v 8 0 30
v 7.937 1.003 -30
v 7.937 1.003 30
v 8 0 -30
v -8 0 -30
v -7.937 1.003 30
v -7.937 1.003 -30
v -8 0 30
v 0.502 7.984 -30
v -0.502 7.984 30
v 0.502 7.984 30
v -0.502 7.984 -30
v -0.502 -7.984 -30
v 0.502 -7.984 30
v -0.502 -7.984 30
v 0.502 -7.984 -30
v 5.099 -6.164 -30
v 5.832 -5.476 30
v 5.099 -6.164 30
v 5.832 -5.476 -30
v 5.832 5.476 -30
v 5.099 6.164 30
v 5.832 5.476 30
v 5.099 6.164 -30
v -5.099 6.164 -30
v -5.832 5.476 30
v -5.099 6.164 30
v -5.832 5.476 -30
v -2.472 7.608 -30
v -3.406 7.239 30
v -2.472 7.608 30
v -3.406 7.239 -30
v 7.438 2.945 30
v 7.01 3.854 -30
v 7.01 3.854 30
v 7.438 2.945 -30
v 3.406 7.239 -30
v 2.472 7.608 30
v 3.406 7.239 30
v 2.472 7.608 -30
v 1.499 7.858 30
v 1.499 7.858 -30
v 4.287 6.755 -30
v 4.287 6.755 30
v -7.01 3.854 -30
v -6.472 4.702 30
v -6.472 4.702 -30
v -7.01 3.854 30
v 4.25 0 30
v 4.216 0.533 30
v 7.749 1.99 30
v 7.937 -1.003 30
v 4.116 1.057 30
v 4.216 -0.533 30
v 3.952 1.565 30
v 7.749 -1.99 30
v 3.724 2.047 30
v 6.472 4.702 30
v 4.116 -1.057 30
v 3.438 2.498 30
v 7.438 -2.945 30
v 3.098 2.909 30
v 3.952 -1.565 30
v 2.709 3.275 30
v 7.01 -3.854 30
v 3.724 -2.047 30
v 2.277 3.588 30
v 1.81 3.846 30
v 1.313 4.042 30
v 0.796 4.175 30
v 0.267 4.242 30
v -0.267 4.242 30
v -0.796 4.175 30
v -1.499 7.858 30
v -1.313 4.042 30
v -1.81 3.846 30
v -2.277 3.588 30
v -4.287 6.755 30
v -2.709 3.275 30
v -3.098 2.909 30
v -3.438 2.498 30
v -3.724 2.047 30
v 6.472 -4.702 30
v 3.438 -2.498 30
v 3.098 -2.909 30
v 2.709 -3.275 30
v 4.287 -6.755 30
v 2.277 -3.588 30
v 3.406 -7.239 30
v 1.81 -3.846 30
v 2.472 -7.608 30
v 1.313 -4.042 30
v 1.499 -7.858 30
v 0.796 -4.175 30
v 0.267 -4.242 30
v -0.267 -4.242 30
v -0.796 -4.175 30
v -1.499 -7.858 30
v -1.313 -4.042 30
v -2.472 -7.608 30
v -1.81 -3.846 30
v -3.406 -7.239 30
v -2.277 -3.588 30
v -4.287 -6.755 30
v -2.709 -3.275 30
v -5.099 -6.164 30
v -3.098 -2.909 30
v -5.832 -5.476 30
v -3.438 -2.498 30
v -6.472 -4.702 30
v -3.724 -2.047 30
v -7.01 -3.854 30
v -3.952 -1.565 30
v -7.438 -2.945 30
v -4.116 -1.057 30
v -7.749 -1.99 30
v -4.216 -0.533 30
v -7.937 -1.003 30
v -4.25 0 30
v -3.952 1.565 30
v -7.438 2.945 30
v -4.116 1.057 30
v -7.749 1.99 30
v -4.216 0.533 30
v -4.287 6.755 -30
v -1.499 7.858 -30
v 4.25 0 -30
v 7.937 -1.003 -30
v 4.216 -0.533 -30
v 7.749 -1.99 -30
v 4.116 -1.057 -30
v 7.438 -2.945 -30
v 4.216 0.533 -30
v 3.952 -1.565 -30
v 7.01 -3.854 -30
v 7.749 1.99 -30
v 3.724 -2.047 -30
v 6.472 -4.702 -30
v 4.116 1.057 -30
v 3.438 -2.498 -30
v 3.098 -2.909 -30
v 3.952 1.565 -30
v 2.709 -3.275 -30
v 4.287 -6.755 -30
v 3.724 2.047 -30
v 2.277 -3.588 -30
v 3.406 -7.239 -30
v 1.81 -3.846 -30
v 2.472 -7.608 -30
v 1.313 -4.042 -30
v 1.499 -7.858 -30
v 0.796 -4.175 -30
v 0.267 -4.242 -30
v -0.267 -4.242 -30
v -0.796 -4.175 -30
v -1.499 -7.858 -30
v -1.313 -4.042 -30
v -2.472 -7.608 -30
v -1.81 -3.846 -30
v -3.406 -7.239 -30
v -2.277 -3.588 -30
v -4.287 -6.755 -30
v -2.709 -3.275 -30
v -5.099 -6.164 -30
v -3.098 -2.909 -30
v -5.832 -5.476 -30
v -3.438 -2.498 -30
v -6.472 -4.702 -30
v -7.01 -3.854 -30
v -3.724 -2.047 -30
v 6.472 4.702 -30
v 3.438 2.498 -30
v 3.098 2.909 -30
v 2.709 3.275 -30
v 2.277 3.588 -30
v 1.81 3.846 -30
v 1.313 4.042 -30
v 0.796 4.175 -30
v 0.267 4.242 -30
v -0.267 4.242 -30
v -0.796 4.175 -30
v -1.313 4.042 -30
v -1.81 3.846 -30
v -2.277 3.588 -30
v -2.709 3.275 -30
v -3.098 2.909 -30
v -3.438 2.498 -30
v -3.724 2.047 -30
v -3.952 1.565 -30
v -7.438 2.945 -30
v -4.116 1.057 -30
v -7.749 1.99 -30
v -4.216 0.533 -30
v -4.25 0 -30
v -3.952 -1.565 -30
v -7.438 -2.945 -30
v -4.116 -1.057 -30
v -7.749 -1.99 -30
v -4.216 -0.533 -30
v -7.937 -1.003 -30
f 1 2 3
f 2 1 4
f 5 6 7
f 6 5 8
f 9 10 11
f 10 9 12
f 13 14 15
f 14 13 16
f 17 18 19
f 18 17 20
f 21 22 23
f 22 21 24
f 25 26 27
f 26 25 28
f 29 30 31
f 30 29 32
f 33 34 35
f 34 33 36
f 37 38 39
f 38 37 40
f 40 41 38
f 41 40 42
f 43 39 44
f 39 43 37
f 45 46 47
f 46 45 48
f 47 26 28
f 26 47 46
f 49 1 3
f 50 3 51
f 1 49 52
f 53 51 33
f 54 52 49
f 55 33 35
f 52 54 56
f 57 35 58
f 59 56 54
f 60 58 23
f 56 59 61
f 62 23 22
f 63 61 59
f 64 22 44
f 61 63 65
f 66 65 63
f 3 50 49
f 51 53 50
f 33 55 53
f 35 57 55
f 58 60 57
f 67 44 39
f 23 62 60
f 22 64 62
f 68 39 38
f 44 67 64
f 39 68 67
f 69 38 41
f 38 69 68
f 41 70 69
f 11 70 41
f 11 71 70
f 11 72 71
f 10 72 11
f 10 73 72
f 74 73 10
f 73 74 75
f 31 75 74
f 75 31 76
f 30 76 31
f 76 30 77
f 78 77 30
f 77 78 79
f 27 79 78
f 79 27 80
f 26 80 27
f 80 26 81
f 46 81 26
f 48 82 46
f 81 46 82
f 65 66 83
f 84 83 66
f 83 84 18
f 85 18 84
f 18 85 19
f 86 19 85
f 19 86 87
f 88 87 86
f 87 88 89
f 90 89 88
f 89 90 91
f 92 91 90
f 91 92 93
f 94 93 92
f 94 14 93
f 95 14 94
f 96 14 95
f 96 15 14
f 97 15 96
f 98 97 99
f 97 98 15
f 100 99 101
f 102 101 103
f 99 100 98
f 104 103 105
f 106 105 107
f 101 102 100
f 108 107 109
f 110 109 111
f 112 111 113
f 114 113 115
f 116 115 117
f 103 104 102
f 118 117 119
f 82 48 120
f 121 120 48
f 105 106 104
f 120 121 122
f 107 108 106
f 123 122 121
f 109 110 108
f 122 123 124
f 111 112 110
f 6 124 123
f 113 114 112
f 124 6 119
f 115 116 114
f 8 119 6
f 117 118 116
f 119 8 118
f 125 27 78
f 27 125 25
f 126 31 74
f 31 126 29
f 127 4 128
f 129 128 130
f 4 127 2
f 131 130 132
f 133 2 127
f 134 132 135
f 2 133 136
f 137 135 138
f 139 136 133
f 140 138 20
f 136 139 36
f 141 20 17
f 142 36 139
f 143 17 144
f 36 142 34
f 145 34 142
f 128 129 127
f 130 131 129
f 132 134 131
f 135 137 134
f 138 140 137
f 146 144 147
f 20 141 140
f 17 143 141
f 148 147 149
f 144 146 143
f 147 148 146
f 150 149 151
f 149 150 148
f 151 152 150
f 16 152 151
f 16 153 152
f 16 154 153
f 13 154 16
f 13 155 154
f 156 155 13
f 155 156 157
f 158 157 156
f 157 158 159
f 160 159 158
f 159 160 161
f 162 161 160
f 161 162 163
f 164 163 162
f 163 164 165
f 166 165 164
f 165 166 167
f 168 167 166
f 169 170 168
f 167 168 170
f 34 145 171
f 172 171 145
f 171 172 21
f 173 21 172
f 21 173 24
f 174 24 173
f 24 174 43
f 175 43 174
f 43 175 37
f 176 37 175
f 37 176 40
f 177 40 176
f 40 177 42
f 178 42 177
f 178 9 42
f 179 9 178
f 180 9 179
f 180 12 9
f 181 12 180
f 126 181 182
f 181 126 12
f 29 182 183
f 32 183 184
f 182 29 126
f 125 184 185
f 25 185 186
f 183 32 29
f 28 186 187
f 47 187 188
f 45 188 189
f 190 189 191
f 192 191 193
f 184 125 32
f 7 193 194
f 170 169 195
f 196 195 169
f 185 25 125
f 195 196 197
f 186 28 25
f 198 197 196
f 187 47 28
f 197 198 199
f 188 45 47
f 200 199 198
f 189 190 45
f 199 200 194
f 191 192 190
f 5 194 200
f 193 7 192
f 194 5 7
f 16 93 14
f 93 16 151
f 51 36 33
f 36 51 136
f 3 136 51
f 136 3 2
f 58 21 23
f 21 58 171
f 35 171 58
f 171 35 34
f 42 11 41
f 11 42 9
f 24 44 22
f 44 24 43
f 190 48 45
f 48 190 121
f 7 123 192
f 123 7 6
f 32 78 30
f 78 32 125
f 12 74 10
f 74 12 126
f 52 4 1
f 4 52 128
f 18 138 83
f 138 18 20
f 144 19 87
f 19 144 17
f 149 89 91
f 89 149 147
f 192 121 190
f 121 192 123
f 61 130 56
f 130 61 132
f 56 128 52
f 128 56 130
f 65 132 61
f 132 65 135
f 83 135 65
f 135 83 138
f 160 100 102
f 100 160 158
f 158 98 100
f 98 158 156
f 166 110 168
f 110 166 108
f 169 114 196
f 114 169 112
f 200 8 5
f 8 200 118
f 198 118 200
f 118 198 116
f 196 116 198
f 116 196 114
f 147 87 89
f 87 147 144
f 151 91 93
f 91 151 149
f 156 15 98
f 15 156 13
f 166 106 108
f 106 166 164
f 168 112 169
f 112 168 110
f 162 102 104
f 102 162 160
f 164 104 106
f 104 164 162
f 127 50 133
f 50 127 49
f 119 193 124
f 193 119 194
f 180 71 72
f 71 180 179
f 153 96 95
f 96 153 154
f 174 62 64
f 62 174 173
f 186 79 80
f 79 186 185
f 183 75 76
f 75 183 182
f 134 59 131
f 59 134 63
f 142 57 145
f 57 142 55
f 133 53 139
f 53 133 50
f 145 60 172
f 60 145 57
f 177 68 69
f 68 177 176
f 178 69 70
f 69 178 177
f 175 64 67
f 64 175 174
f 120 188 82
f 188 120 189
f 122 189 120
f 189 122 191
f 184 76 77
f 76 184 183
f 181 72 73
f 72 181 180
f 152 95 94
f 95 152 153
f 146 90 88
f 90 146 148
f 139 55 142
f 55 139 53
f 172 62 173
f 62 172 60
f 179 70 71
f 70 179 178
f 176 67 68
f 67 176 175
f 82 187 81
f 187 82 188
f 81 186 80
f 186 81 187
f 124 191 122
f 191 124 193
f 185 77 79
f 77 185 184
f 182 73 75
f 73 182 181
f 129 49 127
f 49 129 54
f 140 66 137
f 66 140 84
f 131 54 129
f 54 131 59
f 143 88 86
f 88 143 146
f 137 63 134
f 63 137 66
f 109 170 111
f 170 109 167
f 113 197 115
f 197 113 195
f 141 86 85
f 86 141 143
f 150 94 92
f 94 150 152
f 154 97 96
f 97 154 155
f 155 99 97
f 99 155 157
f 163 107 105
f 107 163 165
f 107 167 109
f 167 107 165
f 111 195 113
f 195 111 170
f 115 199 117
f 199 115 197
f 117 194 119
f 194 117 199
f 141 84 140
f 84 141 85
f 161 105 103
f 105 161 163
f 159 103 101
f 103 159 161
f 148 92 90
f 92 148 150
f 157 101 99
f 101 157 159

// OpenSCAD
$fn = 50;


difference() {
	union() {
		translate(v = [0, 0, -30.0000000000]) {
			cylinder(h = 60, r = 8.0000000000);
		}
	}
	union() {
		translate(v = [0, 0, -100.0000000000]) {
			cylinder(h = 200, r = 4.2500000000);
		}
	}
}
